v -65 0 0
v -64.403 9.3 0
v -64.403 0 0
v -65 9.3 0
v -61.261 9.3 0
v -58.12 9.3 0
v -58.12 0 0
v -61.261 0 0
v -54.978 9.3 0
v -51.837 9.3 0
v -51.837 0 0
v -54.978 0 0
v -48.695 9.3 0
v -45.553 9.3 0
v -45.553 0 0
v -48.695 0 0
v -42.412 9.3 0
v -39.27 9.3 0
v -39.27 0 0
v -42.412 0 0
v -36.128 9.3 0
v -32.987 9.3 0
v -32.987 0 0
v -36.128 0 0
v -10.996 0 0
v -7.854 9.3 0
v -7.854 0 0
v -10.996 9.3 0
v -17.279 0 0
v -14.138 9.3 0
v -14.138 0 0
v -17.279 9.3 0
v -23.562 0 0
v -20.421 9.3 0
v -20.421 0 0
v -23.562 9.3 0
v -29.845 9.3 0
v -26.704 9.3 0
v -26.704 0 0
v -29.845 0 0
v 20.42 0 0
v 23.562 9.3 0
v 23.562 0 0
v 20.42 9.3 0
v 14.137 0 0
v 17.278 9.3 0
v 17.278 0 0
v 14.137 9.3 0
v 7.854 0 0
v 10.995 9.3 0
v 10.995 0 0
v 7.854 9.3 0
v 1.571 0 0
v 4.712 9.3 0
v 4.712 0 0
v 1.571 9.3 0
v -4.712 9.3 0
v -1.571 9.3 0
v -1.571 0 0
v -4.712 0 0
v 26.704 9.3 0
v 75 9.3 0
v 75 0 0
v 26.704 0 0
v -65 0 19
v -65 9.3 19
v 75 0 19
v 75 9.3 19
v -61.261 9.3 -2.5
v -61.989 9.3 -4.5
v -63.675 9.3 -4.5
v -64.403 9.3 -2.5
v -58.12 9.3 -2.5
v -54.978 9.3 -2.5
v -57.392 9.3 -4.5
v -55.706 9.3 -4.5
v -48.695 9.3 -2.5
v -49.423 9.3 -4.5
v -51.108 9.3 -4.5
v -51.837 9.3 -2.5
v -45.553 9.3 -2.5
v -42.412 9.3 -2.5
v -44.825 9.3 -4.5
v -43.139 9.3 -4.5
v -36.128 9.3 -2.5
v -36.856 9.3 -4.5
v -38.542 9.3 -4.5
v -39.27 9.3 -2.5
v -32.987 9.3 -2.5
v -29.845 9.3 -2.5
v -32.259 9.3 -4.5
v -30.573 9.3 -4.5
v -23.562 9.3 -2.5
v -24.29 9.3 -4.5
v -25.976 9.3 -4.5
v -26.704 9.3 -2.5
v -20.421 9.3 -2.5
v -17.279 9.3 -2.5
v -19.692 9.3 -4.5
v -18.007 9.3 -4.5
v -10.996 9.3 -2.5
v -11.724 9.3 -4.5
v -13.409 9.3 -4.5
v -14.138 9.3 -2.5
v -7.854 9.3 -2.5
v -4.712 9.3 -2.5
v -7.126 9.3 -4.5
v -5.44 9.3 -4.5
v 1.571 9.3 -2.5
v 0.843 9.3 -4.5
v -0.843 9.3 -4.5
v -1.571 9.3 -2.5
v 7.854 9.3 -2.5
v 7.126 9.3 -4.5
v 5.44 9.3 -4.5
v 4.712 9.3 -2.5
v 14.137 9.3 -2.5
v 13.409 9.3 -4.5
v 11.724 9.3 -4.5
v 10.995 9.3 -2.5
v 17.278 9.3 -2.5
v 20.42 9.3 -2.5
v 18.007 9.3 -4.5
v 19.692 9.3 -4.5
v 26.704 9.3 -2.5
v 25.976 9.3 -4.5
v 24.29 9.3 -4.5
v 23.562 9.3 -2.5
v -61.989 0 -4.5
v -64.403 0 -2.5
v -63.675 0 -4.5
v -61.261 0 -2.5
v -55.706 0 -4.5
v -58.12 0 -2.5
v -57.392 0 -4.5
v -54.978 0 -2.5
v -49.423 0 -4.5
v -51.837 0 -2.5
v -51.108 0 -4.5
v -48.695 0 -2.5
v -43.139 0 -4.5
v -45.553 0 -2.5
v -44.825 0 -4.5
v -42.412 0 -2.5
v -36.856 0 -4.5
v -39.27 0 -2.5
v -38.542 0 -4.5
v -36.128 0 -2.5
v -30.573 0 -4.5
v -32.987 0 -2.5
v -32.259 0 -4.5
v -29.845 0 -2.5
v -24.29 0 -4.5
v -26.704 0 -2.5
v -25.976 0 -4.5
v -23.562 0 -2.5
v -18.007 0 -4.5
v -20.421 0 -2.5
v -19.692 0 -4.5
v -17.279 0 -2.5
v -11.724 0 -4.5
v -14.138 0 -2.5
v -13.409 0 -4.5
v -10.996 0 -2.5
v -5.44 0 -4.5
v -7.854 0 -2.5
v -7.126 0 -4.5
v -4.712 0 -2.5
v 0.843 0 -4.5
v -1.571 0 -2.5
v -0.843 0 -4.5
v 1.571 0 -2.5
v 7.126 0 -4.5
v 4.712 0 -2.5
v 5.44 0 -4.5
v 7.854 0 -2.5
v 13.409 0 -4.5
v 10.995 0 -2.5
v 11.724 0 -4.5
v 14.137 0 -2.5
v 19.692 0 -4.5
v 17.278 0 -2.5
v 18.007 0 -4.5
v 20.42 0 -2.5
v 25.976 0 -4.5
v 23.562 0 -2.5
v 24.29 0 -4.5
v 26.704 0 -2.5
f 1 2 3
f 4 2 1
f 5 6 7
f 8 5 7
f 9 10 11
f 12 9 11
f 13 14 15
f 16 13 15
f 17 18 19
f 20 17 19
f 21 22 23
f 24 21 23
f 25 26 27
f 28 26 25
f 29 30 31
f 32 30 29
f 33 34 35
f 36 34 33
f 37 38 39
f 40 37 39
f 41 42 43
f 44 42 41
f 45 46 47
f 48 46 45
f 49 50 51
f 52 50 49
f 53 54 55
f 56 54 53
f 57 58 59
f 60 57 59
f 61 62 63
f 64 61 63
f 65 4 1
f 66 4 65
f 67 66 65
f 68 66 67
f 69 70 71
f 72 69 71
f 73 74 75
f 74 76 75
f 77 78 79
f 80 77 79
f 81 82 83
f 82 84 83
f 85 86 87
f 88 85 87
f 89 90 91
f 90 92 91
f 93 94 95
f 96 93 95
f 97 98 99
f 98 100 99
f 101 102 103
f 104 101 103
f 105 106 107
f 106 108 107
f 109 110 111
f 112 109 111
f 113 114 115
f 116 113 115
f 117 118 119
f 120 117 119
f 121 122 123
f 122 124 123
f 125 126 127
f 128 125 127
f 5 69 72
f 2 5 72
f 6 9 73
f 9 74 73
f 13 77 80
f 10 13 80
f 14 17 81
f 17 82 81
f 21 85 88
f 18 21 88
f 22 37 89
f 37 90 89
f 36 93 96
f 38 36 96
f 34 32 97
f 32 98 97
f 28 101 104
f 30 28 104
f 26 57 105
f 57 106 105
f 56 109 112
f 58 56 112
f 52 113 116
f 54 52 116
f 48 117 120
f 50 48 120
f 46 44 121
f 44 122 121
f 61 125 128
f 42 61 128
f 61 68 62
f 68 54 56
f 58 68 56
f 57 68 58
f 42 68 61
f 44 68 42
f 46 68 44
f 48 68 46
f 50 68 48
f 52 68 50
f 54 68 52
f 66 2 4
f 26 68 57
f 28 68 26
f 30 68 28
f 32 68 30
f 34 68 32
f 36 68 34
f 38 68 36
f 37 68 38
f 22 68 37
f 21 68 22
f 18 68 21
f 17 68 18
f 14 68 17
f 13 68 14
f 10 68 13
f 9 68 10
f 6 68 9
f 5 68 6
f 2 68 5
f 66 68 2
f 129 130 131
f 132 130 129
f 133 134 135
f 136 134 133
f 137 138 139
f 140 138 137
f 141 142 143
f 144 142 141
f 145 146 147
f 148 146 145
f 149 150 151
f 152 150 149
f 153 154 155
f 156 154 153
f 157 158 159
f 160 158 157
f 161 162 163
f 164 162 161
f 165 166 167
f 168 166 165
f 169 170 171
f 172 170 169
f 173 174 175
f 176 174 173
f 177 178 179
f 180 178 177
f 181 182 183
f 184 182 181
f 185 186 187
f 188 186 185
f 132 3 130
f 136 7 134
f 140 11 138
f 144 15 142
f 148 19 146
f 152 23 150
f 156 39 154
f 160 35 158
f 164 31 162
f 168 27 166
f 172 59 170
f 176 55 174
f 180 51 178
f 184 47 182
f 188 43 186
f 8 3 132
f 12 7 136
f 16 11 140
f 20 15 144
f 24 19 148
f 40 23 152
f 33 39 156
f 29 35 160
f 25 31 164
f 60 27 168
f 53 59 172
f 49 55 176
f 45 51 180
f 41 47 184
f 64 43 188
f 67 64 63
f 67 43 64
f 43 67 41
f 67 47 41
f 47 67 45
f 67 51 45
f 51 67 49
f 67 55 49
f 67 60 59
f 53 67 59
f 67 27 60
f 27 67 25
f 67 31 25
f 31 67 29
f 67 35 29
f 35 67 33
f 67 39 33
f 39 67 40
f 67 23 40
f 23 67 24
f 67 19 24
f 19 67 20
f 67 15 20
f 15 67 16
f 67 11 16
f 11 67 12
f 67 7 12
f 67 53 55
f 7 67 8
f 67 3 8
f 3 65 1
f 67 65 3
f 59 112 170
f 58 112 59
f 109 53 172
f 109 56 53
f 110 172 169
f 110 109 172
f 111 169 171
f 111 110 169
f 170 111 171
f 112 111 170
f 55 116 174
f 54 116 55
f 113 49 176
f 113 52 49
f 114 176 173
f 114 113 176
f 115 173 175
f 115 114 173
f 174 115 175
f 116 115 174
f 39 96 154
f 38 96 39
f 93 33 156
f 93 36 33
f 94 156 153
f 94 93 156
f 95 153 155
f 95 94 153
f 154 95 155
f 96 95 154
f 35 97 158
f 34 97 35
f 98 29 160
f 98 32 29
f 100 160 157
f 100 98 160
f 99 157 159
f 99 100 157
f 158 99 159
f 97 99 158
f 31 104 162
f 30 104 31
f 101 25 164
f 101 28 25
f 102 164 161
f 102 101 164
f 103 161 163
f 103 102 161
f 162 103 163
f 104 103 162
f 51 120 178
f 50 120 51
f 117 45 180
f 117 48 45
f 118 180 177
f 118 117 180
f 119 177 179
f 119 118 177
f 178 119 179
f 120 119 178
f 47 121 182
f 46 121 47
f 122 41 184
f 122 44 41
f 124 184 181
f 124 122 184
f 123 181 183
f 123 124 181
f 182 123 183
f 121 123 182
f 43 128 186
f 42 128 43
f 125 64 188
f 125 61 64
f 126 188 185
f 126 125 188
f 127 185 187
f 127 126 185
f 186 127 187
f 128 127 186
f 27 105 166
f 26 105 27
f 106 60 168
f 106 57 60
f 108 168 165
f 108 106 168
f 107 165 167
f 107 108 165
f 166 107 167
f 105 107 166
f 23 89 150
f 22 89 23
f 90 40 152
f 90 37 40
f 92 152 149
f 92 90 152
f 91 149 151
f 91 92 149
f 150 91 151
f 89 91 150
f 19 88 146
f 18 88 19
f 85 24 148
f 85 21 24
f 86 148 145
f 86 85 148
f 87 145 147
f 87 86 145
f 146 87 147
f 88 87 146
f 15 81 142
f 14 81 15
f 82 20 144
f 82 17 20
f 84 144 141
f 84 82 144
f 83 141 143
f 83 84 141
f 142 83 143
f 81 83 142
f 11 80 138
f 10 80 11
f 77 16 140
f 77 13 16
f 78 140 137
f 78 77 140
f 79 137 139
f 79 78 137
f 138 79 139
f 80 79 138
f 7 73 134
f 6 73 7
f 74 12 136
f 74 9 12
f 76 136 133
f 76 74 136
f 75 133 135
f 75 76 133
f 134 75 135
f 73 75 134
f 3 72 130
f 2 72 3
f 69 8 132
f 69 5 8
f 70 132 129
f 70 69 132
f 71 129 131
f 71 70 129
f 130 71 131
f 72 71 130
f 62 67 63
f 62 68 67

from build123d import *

# Parameters (mm, degrees)
SKETCH2_W           = 130
SKETCH2_H           = 19
BOSS_EXTRUDE1_DEPTH = 9.3
BOSS_EXTRUDE2_DEPTH = 9.3
LPATTERN1_COUNT     = 11
LPATTERN1_PITCH     = 6.283185307
LPATTERN1_COL_COUNT = 5
LPATTERN1_COL_PITCH = 6.283185307
SKETCH3_W           = 19
SKETCH3_H           = 9.3
BOSS_EXTRUDE3_DEPTH = 10


with BuildPart() as part:
    # Sketch2 → Boss-Extrude1 (new body)
    with BuildSketch(Plane(origin=(0, 0, 0), x_dir=(1, 0, 0), z_dir=(0, 1, 0))):
        with Locations((0, -9.5)):
            Rectangle(SKETCH2_W, SKETCH2_H)
    extrude(amount=BOSS_EXTRUDE1_DEPTH)

    # Sketch2<5> → Boss-Extrude2 (add)
    with BuildSketch(Plane(origin=(0, 0, 0), x_dir=(1, 0, 0), z_dir=(0, 1, 0))):
        Polygon((0.842855858, 4.499999971), (-0.842855858, 4.499999971), (-1.571175787, 2.500138124), (-1.571175787, 0), (1.570796327, 0), (1.570796327, 2.499999971), align=None)
    boss_extrude2 = extrude(amount=BOSS_EXTRUDE2_DEPTH)

    # LPattern1: Boss-Extrude2 ×11
    with Locations(*[(-i * LPATTERN1_PITCH, 0, 0) for i in range(1, LPATTERN1_COUNT)]):
        add(boss_extrude2)

    # LPattern1 col: Boss-Extrude2 ×5
    with Locations(*[(i * LPATTERN1_COL_PITCH, 0, 0) for i in range(1, LPATTERN1_COL_COUNT)]):
        add(boss_extrude2)

    # Sketch3 → Boss-Extrude3 (add)
    with BuildSketch(Plane(origin=(65, 0, 0), x_dir=(0, 0, -1), z_dir=(1, 0, 0))):
        with Locations((-9.5, 4.65)):
            Rectangle(SKETCH3_W, SKETCH3_H)
    extrude(amount=BOSS_EXTRUDE3_DEPTH)


solid = part.part
